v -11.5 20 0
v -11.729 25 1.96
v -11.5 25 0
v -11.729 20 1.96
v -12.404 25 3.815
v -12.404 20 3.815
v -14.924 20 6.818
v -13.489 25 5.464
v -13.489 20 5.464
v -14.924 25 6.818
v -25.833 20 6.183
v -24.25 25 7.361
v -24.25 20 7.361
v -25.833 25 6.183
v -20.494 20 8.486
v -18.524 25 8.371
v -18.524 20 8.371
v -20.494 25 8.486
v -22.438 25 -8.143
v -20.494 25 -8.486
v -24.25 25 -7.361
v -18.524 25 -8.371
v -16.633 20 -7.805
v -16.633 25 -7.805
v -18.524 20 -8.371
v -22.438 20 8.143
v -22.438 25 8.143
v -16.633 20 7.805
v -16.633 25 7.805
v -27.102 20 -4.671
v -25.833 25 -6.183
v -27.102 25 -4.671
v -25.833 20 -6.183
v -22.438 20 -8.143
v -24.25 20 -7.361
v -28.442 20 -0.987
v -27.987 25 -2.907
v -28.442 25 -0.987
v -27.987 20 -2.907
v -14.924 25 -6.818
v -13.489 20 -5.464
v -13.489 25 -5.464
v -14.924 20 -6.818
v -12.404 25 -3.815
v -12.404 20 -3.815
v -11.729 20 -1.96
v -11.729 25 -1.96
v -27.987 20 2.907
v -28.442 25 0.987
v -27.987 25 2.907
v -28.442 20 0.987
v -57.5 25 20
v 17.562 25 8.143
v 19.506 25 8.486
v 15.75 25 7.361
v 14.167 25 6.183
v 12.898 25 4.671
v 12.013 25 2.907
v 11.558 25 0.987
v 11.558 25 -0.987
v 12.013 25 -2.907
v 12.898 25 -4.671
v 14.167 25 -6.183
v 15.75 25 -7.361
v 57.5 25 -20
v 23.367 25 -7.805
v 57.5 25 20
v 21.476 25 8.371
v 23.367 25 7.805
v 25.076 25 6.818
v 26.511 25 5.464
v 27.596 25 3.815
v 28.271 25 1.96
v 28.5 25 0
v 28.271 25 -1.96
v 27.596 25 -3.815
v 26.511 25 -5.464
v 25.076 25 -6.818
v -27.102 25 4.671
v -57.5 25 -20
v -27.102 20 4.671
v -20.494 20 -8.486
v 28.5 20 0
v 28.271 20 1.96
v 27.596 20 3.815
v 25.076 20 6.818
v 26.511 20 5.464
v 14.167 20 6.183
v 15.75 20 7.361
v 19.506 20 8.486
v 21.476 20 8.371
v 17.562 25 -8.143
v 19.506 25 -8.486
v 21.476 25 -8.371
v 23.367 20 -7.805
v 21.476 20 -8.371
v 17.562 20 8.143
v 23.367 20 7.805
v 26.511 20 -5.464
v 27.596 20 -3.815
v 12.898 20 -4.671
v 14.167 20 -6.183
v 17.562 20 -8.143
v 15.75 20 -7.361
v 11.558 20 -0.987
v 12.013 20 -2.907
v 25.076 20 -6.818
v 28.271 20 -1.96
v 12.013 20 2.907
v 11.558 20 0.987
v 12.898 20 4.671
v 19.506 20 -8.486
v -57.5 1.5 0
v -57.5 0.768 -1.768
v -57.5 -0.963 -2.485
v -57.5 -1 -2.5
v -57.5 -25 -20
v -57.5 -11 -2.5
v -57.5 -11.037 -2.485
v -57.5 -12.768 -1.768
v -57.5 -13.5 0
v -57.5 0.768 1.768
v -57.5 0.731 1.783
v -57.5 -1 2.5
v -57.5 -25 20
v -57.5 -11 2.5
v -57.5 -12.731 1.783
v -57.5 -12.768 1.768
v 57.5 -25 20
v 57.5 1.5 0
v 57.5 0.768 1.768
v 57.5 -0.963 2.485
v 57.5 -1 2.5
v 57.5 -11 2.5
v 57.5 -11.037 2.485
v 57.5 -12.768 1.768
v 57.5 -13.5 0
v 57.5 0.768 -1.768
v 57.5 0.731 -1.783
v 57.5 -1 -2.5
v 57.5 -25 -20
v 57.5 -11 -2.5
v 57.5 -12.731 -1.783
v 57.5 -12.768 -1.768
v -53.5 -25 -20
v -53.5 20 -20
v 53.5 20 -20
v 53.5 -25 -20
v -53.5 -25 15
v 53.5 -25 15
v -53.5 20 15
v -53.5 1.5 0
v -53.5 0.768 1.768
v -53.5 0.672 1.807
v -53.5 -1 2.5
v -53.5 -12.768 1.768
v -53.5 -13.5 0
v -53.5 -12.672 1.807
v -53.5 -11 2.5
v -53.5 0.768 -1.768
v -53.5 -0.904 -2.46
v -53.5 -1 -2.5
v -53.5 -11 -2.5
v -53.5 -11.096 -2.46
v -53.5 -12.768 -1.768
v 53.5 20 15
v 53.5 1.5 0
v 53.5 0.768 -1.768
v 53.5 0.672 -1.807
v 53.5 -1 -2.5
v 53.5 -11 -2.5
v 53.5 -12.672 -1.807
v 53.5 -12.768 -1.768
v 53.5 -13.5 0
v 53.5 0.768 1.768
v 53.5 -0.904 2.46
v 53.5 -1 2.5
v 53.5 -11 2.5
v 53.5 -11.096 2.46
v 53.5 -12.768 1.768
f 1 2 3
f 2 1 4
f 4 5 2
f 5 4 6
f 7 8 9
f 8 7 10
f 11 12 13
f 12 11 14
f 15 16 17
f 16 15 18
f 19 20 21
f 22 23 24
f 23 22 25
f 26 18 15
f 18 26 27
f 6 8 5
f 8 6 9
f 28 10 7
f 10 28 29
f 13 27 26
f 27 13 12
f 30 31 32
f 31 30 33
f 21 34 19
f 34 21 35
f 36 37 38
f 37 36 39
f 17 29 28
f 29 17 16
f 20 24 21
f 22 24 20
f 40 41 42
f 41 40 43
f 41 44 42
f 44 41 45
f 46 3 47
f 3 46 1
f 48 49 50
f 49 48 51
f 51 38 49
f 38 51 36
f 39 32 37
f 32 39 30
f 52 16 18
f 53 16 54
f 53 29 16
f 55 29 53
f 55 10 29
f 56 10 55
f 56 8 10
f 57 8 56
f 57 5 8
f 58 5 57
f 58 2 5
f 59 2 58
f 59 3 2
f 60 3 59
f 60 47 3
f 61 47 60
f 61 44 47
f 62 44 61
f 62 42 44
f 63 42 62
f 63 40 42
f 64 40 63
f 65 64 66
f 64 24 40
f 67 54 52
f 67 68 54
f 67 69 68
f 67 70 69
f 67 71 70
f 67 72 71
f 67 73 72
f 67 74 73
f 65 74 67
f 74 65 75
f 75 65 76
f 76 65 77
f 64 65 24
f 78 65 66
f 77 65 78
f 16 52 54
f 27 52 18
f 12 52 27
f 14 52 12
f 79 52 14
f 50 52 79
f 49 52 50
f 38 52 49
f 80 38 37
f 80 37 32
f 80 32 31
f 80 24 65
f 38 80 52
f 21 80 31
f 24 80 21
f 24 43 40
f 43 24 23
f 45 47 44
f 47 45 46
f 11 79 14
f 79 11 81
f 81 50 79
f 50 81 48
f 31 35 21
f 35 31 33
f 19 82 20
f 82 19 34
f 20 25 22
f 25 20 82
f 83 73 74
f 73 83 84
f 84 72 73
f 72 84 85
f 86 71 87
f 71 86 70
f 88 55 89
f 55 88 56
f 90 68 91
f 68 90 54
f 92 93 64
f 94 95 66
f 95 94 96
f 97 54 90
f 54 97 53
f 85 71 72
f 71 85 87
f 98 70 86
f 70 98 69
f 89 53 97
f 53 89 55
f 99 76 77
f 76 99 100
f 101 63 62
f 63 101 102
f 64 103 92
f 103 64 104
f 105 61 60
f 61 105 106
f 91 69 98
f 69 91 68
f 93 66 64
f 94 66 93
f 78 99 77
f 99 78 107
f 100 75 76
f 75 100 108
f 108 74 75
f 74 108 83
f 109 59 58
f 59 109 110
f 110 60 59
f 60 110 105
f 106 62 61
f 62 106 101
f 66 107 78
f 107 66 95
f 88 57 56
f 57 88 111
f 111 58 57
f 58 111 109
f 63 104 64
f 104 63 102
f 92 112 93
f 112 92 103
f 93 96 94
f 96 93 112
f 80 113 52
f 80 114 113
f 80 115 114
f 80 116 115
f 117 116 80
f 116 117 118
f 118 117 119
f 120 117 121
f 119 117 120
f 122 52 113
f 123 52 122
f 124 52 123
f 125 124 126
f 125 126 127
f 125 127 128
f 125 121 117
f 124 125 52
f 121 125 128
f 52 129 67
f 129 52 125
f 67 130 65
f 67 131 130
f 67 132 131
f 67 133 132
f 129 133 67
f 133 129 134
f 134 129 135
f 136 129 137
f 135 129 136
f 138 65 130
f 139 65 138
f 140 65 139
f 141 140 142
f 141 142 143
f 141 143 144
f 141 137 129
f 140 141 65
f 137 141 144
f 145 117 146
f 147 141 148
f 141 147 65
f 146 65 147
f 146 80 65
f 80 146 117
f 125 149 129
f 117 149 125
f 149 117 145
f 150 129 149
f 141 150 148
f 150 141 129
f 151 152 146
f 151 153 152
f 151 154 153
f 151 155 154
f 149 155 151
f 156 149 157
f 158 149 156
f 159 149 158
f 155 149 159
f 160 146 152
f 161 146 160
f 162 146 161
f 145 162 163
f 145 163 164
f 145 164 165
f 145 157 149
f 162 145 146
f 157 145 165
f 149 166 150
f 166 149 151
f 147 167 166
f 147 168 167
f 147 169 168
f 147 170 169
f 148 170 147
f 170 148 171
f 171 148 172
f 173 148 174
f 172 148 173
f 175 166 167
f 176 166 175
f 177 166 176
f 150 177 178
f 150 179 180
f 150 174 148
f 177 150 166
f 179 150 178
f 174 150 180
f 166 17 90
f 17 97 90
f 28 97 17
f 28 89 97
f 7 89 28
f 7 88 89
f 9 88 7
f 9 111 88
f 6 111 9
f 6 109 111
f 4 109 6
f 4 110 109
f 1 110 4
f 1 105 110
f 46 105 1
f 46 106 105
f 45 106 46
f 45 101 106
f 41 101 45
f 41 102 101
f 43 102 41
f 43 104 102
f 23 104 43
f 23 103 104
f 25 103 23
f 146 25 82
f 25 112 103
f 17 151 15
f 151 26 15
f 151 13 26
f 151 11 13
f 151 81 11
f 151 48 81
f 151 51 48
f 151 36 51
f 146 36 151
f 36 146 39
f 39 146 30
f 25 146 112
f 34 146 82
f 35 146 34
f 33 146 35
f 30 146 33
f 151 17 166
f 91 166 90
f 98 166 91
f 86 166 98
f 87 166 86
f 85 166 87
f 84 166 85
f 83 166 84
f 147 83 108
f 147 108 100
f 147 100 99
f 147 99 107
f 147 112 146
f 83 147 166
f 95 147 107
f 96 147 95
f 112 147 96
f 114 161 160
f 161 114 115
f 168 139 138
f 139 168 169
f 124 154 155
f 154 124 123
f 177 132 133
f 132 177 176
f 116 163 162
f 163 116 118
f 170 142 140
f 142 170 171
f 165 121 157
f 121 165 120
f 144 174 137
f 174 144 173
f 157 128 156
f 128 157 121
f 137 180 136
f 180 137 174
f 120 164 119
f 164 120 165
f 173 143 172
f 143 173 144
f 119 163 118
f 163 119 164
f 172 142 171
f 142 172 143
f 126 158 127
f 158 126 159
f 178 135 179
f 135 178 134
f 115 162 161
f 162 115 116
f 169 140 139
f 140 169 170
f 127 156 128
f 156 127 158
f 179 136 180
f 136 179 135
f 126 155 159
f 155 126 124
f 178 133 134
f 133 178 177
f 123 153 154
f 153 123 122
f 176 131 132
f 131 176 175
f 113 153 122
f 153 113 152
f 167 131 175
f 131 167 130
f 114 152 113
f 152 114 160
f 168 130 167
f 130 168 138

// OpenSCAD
//20-25 Loch 16 von wand
//40 Stark
//105 Breit
//50 Hoch

difference() {
    cube([115,50,40],center=true);
    translate([0,-2.5,-5])cube([107,45,40],center=true);
    translate([0,-6])rotate([0,90,0])hull() {
        translate([0,-5])cylinder(r=2.5,h=120,center=true);
        translate([0,5])cylinder(r=2.5,h=120,center=true);
    }
    for(i=[-1,1])translate([i*20,25,0])rotate([90,0,0])cylinder(r=8.5,h=10);
}
    
